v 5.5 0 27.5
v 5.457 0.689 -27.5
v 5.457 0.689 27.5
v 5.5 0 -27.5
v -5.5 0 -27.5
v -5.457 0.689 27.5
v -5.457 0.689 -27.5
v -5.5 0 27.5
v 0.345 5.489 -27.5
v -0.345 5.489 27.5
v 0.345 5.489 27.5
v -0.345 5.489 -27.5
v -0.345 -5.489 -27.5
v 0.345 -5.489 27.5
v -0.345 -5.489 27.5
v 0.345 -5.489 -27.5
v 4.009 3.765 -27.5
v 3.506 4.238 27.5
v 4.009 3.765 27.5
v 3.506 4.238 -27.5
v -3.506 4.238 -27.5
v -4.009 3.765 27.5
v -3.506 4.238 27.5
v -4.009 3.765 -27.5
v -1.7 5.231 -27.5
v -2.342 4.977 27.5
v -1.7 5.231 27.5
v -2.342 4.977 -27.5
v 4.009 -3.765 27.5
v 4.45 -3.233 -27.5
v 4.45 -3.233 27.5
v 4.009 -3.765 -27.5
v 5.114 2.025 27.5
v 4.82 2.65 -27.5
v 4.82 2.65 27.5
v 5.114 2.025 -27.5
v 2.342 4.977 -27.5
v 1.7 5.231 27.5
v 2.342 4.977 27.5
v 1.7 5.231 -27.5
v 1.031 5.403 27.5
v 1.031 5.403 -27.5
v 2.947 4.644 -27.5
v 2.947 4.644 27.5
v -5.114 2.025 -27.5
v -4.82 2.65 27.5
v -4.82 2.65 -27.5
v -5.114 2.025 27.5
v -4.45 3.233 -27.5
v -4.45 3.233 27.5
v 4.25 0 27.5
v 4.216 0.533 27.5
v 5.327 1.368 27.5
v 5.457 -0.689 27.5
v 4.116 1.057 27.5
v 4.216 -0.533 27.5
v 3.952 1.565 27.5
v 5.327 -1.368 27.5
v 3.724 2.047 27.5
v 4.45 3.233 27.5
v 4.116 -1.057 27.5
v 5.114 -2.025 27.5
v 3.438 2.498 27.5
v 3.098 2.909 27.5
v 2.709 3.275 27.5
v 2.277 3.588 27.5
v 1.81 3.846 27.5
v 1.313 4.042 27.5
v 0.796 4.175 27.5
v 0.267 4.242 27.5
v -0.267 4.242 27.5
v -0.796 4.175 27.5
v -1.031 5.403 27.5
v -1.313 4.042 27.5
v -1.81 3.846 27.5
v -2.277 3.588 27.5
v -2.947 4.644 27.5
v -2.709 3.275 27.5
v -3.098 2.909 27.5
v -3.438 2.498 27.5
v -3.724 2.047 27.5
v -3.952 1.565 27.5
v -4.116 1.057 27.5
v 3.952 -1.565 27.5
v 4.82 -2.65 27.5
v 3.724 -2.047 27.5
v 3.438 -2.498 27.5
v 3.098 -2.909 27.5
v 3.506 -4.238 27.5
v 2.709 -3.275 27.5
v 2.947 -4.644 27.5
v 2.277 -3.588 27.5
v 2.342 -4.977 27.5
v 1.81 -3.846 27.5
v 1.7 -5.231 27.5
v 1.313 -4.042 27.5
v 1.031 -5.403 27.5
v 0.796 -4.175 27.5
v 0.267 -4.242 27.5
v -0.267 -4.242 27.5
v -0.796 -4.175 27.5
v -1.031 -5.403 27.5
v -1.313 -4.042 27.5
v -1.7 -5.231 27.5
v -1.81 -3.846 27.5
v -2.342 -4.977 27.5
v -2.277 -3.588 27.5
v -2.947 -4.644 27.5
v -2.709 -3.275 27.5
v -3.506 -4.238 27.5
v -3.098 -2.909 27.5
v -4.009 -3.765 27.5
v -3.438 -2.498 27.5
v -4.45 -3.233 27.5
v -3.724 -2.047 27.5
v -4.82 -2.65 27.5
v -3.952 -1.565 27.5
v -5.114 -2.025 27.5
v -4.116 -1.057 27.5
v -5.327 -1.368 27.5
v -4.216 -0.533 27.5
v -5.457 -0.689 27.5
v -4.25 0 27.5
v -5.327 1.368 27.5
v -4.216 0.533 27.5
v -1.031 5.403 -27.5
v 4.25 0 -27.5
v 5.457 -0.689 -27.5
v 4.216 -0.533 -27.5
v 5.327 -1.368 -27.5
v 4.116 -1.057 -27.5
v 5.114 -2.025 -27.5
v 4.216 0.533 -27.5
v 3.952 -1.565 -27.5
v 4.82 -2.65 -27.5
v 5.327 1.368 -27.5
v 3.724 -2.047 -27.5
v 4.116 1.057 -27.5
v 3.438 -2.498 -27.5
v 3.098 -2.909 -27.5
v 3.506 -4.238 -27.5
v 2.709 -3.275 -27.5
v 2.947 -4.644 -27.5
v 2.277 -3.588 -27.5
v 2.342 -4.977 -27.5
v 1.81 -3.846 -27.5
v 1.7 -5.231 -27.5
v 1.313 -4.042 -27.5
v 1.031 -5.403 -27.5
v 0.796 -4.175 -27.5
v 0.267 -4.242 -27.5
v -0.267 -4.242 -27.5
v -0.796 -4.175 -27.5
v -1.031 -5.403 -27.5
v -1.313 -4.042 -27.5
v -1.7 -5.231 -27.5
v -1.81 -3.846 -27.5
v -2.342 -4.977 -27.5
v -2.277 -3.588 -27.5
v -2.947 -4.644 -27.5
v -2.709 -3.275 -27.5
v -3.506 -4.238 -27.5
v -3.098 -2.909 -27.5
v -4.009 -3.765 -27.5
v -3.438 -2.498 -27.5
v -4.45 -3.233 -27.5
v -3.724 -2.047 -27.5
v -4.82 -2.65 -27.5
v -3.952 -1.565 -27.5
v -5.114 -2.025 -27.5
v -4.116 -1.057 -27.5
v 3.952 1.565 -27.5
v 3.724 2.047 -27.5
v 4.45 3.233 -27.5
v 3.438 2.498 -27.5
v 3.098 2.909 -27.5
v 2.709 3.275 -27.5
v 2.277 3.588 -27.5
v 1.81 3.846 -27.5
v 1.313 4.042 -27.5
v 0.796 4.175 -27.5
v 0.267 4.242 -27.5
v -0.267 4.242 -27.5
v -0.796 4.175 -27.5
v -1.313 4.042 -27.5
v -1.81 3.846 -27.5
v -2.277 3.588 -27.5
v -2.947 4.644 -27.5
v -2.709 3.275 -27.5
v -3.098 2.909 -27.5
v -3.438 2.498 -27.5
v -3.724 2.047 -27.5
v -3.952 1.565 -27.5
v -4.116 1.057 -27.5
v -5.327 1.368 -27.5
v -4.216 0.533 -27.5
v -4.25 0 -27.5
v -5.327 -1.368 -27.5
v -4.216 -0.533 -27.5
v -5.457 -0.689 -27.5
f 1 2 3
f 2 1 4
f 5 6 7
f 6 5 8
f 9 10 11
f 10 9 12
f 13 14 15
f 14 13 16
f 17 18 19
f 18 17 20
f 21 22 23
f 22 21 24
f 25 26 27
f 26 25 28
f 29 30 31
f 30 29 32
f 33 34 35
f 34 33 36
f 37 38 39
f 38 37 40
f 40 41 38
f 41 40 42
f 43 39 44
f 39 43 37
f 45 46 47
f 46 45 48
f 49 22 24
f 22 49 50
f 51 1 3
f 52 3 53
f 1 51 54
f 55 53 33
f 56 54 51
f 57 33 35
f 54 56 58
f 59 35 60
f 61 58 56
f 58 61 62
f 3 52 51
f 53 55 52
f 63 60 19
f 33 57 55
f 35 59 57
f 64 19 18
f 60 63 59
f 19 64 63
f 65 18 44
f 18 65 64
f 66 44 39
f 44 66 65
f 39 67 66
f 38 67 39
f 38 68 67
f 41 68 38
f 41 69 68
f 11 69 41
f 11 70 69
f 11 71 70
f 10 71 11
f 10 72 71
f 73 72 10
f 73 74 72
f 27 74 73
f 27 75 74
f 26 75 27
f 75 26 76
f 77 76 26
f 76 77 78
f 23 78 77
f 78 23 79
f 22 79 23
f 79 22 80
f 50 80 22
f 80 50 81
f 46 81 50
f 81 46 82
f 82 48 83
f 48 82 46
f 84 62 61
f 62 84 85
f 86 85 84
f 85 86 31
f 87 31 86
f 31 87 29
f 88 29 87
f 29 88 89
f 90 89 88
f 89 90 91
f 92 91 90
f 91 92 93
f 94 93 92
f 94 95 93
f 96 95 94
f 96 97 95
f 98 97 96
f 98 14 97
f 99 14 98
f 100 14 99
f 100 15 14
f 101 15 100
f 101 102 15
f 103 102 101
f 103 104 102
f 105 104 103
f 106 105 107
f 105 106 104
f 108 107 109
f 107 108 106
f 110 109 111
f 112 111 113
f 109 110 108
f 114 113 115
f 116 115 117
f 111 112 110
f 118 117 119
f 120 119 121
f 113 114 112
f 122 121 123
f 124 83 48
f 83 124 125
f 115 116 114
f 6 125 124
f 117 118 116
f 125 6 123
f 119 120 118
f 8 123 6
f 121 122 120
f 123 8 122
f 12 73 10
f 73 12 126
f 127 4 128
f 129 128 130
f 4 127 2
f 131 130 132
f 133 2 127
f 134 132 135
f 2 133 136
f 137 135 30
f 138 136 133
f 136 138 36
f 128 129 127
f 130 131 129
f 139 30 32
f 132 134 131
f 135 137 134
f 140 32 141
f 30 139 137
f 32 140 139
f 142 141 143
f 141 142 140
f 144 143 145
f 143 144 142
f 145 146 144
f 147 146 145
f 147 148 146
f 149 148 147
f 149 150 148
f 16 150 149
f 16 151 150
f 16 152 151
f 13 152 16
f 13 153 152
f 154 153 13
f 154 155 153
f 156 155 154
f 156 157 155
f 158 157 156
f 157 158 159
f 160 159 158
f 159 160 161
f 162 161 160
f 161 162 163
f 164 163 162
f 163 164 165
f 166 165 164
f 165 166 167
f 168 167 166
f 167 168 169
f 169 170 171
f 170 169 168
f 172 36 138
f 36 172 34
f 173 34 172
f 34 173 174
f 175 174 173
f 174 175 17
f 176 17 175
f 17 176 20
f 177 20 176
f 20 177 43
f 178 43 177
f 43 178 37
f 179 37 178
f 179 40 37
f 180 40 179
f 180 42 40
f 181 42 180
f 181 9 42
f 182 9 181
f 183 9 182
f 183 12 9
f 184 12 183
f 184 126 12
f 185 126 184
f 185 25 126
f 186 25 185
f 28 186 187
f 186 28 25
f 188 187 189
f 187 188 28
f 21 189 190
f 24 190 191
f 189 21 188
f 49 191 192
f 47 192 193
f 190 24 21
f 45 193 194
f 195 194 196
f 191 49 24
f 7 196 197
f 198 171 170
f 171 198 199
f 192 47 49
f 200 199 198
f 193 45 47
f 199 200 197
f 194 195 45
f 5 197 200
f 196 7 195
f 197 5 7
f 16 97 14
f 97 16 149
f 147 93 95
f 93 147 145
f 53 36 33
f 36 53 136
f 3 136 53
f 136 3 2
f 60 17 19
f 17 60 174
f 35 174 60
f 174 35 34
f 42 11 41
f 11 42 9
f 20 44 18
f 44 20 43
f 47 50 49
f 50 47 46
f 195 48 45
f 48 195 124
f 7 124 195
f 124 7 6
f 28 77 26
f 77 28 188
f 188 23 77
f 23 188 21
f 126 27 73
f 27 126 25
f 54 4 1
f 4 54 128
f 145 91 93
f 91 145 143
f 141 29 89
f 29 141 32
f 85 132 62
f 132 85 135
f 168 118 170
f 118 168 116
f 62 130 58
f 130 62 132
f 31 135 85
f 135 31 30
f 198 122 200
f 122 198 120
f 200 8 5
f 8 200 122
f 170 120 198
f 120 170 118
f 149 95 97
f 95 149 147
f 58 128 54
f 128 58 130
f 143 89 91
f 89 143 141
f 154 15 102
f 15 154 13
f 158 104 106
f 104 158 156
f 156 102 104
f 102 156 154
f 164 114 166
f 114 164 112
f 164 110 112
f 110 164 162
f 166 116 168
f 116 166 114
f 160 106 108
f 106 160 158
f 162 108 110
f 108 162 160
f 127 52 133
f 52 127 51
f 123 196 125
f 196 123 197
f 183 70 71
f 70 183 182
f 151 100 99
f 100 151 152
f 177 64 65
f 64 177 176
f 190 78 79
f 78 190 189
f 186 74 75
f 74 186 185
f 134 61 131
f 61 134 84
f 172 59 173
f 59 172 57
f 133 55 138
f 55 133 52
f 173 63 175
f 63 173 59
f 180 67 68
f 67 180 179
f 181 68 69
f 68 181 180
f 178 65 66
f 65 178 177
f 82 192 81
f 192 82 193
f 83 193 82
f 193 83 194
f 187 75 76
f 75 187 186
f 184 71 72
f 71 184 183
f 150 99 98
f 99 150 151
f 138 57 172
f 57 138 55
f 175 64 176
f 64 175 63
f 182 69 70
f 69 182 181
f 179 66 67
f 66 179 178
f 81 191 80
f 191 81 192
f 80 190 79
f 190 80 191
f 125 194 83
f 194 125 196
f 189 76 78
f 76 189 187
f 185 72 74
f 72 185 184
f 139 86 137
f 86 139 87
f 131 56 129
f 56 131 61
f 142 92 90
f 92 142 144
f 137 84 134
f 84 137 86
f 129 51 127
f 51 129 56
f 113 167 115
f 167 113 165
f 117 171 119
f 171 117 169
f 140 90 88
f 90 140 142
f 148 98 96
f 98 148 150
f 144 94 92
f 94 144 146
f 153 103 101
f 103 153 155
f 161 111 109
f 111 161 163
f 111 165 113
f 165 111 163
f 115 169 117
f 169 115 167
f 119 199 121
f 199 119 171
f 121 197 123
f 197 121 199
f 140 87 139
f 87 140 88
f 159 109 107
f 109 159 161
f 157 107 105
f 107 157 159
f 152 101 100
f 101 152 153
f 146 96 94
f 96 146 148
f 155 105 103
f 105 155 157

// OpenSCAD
$fn = 50;


difference() {
	union() {
		translate(v = [0, 0, -27.5000000000]) {
			cylinder(h = 55, r = 5.5000000000);
		}
	}
	union() {
		translate(v = [0, 0, -100.0000000000]) {
			cylinder(h = 200, r = 4.2500000000);
		}
	}
}
